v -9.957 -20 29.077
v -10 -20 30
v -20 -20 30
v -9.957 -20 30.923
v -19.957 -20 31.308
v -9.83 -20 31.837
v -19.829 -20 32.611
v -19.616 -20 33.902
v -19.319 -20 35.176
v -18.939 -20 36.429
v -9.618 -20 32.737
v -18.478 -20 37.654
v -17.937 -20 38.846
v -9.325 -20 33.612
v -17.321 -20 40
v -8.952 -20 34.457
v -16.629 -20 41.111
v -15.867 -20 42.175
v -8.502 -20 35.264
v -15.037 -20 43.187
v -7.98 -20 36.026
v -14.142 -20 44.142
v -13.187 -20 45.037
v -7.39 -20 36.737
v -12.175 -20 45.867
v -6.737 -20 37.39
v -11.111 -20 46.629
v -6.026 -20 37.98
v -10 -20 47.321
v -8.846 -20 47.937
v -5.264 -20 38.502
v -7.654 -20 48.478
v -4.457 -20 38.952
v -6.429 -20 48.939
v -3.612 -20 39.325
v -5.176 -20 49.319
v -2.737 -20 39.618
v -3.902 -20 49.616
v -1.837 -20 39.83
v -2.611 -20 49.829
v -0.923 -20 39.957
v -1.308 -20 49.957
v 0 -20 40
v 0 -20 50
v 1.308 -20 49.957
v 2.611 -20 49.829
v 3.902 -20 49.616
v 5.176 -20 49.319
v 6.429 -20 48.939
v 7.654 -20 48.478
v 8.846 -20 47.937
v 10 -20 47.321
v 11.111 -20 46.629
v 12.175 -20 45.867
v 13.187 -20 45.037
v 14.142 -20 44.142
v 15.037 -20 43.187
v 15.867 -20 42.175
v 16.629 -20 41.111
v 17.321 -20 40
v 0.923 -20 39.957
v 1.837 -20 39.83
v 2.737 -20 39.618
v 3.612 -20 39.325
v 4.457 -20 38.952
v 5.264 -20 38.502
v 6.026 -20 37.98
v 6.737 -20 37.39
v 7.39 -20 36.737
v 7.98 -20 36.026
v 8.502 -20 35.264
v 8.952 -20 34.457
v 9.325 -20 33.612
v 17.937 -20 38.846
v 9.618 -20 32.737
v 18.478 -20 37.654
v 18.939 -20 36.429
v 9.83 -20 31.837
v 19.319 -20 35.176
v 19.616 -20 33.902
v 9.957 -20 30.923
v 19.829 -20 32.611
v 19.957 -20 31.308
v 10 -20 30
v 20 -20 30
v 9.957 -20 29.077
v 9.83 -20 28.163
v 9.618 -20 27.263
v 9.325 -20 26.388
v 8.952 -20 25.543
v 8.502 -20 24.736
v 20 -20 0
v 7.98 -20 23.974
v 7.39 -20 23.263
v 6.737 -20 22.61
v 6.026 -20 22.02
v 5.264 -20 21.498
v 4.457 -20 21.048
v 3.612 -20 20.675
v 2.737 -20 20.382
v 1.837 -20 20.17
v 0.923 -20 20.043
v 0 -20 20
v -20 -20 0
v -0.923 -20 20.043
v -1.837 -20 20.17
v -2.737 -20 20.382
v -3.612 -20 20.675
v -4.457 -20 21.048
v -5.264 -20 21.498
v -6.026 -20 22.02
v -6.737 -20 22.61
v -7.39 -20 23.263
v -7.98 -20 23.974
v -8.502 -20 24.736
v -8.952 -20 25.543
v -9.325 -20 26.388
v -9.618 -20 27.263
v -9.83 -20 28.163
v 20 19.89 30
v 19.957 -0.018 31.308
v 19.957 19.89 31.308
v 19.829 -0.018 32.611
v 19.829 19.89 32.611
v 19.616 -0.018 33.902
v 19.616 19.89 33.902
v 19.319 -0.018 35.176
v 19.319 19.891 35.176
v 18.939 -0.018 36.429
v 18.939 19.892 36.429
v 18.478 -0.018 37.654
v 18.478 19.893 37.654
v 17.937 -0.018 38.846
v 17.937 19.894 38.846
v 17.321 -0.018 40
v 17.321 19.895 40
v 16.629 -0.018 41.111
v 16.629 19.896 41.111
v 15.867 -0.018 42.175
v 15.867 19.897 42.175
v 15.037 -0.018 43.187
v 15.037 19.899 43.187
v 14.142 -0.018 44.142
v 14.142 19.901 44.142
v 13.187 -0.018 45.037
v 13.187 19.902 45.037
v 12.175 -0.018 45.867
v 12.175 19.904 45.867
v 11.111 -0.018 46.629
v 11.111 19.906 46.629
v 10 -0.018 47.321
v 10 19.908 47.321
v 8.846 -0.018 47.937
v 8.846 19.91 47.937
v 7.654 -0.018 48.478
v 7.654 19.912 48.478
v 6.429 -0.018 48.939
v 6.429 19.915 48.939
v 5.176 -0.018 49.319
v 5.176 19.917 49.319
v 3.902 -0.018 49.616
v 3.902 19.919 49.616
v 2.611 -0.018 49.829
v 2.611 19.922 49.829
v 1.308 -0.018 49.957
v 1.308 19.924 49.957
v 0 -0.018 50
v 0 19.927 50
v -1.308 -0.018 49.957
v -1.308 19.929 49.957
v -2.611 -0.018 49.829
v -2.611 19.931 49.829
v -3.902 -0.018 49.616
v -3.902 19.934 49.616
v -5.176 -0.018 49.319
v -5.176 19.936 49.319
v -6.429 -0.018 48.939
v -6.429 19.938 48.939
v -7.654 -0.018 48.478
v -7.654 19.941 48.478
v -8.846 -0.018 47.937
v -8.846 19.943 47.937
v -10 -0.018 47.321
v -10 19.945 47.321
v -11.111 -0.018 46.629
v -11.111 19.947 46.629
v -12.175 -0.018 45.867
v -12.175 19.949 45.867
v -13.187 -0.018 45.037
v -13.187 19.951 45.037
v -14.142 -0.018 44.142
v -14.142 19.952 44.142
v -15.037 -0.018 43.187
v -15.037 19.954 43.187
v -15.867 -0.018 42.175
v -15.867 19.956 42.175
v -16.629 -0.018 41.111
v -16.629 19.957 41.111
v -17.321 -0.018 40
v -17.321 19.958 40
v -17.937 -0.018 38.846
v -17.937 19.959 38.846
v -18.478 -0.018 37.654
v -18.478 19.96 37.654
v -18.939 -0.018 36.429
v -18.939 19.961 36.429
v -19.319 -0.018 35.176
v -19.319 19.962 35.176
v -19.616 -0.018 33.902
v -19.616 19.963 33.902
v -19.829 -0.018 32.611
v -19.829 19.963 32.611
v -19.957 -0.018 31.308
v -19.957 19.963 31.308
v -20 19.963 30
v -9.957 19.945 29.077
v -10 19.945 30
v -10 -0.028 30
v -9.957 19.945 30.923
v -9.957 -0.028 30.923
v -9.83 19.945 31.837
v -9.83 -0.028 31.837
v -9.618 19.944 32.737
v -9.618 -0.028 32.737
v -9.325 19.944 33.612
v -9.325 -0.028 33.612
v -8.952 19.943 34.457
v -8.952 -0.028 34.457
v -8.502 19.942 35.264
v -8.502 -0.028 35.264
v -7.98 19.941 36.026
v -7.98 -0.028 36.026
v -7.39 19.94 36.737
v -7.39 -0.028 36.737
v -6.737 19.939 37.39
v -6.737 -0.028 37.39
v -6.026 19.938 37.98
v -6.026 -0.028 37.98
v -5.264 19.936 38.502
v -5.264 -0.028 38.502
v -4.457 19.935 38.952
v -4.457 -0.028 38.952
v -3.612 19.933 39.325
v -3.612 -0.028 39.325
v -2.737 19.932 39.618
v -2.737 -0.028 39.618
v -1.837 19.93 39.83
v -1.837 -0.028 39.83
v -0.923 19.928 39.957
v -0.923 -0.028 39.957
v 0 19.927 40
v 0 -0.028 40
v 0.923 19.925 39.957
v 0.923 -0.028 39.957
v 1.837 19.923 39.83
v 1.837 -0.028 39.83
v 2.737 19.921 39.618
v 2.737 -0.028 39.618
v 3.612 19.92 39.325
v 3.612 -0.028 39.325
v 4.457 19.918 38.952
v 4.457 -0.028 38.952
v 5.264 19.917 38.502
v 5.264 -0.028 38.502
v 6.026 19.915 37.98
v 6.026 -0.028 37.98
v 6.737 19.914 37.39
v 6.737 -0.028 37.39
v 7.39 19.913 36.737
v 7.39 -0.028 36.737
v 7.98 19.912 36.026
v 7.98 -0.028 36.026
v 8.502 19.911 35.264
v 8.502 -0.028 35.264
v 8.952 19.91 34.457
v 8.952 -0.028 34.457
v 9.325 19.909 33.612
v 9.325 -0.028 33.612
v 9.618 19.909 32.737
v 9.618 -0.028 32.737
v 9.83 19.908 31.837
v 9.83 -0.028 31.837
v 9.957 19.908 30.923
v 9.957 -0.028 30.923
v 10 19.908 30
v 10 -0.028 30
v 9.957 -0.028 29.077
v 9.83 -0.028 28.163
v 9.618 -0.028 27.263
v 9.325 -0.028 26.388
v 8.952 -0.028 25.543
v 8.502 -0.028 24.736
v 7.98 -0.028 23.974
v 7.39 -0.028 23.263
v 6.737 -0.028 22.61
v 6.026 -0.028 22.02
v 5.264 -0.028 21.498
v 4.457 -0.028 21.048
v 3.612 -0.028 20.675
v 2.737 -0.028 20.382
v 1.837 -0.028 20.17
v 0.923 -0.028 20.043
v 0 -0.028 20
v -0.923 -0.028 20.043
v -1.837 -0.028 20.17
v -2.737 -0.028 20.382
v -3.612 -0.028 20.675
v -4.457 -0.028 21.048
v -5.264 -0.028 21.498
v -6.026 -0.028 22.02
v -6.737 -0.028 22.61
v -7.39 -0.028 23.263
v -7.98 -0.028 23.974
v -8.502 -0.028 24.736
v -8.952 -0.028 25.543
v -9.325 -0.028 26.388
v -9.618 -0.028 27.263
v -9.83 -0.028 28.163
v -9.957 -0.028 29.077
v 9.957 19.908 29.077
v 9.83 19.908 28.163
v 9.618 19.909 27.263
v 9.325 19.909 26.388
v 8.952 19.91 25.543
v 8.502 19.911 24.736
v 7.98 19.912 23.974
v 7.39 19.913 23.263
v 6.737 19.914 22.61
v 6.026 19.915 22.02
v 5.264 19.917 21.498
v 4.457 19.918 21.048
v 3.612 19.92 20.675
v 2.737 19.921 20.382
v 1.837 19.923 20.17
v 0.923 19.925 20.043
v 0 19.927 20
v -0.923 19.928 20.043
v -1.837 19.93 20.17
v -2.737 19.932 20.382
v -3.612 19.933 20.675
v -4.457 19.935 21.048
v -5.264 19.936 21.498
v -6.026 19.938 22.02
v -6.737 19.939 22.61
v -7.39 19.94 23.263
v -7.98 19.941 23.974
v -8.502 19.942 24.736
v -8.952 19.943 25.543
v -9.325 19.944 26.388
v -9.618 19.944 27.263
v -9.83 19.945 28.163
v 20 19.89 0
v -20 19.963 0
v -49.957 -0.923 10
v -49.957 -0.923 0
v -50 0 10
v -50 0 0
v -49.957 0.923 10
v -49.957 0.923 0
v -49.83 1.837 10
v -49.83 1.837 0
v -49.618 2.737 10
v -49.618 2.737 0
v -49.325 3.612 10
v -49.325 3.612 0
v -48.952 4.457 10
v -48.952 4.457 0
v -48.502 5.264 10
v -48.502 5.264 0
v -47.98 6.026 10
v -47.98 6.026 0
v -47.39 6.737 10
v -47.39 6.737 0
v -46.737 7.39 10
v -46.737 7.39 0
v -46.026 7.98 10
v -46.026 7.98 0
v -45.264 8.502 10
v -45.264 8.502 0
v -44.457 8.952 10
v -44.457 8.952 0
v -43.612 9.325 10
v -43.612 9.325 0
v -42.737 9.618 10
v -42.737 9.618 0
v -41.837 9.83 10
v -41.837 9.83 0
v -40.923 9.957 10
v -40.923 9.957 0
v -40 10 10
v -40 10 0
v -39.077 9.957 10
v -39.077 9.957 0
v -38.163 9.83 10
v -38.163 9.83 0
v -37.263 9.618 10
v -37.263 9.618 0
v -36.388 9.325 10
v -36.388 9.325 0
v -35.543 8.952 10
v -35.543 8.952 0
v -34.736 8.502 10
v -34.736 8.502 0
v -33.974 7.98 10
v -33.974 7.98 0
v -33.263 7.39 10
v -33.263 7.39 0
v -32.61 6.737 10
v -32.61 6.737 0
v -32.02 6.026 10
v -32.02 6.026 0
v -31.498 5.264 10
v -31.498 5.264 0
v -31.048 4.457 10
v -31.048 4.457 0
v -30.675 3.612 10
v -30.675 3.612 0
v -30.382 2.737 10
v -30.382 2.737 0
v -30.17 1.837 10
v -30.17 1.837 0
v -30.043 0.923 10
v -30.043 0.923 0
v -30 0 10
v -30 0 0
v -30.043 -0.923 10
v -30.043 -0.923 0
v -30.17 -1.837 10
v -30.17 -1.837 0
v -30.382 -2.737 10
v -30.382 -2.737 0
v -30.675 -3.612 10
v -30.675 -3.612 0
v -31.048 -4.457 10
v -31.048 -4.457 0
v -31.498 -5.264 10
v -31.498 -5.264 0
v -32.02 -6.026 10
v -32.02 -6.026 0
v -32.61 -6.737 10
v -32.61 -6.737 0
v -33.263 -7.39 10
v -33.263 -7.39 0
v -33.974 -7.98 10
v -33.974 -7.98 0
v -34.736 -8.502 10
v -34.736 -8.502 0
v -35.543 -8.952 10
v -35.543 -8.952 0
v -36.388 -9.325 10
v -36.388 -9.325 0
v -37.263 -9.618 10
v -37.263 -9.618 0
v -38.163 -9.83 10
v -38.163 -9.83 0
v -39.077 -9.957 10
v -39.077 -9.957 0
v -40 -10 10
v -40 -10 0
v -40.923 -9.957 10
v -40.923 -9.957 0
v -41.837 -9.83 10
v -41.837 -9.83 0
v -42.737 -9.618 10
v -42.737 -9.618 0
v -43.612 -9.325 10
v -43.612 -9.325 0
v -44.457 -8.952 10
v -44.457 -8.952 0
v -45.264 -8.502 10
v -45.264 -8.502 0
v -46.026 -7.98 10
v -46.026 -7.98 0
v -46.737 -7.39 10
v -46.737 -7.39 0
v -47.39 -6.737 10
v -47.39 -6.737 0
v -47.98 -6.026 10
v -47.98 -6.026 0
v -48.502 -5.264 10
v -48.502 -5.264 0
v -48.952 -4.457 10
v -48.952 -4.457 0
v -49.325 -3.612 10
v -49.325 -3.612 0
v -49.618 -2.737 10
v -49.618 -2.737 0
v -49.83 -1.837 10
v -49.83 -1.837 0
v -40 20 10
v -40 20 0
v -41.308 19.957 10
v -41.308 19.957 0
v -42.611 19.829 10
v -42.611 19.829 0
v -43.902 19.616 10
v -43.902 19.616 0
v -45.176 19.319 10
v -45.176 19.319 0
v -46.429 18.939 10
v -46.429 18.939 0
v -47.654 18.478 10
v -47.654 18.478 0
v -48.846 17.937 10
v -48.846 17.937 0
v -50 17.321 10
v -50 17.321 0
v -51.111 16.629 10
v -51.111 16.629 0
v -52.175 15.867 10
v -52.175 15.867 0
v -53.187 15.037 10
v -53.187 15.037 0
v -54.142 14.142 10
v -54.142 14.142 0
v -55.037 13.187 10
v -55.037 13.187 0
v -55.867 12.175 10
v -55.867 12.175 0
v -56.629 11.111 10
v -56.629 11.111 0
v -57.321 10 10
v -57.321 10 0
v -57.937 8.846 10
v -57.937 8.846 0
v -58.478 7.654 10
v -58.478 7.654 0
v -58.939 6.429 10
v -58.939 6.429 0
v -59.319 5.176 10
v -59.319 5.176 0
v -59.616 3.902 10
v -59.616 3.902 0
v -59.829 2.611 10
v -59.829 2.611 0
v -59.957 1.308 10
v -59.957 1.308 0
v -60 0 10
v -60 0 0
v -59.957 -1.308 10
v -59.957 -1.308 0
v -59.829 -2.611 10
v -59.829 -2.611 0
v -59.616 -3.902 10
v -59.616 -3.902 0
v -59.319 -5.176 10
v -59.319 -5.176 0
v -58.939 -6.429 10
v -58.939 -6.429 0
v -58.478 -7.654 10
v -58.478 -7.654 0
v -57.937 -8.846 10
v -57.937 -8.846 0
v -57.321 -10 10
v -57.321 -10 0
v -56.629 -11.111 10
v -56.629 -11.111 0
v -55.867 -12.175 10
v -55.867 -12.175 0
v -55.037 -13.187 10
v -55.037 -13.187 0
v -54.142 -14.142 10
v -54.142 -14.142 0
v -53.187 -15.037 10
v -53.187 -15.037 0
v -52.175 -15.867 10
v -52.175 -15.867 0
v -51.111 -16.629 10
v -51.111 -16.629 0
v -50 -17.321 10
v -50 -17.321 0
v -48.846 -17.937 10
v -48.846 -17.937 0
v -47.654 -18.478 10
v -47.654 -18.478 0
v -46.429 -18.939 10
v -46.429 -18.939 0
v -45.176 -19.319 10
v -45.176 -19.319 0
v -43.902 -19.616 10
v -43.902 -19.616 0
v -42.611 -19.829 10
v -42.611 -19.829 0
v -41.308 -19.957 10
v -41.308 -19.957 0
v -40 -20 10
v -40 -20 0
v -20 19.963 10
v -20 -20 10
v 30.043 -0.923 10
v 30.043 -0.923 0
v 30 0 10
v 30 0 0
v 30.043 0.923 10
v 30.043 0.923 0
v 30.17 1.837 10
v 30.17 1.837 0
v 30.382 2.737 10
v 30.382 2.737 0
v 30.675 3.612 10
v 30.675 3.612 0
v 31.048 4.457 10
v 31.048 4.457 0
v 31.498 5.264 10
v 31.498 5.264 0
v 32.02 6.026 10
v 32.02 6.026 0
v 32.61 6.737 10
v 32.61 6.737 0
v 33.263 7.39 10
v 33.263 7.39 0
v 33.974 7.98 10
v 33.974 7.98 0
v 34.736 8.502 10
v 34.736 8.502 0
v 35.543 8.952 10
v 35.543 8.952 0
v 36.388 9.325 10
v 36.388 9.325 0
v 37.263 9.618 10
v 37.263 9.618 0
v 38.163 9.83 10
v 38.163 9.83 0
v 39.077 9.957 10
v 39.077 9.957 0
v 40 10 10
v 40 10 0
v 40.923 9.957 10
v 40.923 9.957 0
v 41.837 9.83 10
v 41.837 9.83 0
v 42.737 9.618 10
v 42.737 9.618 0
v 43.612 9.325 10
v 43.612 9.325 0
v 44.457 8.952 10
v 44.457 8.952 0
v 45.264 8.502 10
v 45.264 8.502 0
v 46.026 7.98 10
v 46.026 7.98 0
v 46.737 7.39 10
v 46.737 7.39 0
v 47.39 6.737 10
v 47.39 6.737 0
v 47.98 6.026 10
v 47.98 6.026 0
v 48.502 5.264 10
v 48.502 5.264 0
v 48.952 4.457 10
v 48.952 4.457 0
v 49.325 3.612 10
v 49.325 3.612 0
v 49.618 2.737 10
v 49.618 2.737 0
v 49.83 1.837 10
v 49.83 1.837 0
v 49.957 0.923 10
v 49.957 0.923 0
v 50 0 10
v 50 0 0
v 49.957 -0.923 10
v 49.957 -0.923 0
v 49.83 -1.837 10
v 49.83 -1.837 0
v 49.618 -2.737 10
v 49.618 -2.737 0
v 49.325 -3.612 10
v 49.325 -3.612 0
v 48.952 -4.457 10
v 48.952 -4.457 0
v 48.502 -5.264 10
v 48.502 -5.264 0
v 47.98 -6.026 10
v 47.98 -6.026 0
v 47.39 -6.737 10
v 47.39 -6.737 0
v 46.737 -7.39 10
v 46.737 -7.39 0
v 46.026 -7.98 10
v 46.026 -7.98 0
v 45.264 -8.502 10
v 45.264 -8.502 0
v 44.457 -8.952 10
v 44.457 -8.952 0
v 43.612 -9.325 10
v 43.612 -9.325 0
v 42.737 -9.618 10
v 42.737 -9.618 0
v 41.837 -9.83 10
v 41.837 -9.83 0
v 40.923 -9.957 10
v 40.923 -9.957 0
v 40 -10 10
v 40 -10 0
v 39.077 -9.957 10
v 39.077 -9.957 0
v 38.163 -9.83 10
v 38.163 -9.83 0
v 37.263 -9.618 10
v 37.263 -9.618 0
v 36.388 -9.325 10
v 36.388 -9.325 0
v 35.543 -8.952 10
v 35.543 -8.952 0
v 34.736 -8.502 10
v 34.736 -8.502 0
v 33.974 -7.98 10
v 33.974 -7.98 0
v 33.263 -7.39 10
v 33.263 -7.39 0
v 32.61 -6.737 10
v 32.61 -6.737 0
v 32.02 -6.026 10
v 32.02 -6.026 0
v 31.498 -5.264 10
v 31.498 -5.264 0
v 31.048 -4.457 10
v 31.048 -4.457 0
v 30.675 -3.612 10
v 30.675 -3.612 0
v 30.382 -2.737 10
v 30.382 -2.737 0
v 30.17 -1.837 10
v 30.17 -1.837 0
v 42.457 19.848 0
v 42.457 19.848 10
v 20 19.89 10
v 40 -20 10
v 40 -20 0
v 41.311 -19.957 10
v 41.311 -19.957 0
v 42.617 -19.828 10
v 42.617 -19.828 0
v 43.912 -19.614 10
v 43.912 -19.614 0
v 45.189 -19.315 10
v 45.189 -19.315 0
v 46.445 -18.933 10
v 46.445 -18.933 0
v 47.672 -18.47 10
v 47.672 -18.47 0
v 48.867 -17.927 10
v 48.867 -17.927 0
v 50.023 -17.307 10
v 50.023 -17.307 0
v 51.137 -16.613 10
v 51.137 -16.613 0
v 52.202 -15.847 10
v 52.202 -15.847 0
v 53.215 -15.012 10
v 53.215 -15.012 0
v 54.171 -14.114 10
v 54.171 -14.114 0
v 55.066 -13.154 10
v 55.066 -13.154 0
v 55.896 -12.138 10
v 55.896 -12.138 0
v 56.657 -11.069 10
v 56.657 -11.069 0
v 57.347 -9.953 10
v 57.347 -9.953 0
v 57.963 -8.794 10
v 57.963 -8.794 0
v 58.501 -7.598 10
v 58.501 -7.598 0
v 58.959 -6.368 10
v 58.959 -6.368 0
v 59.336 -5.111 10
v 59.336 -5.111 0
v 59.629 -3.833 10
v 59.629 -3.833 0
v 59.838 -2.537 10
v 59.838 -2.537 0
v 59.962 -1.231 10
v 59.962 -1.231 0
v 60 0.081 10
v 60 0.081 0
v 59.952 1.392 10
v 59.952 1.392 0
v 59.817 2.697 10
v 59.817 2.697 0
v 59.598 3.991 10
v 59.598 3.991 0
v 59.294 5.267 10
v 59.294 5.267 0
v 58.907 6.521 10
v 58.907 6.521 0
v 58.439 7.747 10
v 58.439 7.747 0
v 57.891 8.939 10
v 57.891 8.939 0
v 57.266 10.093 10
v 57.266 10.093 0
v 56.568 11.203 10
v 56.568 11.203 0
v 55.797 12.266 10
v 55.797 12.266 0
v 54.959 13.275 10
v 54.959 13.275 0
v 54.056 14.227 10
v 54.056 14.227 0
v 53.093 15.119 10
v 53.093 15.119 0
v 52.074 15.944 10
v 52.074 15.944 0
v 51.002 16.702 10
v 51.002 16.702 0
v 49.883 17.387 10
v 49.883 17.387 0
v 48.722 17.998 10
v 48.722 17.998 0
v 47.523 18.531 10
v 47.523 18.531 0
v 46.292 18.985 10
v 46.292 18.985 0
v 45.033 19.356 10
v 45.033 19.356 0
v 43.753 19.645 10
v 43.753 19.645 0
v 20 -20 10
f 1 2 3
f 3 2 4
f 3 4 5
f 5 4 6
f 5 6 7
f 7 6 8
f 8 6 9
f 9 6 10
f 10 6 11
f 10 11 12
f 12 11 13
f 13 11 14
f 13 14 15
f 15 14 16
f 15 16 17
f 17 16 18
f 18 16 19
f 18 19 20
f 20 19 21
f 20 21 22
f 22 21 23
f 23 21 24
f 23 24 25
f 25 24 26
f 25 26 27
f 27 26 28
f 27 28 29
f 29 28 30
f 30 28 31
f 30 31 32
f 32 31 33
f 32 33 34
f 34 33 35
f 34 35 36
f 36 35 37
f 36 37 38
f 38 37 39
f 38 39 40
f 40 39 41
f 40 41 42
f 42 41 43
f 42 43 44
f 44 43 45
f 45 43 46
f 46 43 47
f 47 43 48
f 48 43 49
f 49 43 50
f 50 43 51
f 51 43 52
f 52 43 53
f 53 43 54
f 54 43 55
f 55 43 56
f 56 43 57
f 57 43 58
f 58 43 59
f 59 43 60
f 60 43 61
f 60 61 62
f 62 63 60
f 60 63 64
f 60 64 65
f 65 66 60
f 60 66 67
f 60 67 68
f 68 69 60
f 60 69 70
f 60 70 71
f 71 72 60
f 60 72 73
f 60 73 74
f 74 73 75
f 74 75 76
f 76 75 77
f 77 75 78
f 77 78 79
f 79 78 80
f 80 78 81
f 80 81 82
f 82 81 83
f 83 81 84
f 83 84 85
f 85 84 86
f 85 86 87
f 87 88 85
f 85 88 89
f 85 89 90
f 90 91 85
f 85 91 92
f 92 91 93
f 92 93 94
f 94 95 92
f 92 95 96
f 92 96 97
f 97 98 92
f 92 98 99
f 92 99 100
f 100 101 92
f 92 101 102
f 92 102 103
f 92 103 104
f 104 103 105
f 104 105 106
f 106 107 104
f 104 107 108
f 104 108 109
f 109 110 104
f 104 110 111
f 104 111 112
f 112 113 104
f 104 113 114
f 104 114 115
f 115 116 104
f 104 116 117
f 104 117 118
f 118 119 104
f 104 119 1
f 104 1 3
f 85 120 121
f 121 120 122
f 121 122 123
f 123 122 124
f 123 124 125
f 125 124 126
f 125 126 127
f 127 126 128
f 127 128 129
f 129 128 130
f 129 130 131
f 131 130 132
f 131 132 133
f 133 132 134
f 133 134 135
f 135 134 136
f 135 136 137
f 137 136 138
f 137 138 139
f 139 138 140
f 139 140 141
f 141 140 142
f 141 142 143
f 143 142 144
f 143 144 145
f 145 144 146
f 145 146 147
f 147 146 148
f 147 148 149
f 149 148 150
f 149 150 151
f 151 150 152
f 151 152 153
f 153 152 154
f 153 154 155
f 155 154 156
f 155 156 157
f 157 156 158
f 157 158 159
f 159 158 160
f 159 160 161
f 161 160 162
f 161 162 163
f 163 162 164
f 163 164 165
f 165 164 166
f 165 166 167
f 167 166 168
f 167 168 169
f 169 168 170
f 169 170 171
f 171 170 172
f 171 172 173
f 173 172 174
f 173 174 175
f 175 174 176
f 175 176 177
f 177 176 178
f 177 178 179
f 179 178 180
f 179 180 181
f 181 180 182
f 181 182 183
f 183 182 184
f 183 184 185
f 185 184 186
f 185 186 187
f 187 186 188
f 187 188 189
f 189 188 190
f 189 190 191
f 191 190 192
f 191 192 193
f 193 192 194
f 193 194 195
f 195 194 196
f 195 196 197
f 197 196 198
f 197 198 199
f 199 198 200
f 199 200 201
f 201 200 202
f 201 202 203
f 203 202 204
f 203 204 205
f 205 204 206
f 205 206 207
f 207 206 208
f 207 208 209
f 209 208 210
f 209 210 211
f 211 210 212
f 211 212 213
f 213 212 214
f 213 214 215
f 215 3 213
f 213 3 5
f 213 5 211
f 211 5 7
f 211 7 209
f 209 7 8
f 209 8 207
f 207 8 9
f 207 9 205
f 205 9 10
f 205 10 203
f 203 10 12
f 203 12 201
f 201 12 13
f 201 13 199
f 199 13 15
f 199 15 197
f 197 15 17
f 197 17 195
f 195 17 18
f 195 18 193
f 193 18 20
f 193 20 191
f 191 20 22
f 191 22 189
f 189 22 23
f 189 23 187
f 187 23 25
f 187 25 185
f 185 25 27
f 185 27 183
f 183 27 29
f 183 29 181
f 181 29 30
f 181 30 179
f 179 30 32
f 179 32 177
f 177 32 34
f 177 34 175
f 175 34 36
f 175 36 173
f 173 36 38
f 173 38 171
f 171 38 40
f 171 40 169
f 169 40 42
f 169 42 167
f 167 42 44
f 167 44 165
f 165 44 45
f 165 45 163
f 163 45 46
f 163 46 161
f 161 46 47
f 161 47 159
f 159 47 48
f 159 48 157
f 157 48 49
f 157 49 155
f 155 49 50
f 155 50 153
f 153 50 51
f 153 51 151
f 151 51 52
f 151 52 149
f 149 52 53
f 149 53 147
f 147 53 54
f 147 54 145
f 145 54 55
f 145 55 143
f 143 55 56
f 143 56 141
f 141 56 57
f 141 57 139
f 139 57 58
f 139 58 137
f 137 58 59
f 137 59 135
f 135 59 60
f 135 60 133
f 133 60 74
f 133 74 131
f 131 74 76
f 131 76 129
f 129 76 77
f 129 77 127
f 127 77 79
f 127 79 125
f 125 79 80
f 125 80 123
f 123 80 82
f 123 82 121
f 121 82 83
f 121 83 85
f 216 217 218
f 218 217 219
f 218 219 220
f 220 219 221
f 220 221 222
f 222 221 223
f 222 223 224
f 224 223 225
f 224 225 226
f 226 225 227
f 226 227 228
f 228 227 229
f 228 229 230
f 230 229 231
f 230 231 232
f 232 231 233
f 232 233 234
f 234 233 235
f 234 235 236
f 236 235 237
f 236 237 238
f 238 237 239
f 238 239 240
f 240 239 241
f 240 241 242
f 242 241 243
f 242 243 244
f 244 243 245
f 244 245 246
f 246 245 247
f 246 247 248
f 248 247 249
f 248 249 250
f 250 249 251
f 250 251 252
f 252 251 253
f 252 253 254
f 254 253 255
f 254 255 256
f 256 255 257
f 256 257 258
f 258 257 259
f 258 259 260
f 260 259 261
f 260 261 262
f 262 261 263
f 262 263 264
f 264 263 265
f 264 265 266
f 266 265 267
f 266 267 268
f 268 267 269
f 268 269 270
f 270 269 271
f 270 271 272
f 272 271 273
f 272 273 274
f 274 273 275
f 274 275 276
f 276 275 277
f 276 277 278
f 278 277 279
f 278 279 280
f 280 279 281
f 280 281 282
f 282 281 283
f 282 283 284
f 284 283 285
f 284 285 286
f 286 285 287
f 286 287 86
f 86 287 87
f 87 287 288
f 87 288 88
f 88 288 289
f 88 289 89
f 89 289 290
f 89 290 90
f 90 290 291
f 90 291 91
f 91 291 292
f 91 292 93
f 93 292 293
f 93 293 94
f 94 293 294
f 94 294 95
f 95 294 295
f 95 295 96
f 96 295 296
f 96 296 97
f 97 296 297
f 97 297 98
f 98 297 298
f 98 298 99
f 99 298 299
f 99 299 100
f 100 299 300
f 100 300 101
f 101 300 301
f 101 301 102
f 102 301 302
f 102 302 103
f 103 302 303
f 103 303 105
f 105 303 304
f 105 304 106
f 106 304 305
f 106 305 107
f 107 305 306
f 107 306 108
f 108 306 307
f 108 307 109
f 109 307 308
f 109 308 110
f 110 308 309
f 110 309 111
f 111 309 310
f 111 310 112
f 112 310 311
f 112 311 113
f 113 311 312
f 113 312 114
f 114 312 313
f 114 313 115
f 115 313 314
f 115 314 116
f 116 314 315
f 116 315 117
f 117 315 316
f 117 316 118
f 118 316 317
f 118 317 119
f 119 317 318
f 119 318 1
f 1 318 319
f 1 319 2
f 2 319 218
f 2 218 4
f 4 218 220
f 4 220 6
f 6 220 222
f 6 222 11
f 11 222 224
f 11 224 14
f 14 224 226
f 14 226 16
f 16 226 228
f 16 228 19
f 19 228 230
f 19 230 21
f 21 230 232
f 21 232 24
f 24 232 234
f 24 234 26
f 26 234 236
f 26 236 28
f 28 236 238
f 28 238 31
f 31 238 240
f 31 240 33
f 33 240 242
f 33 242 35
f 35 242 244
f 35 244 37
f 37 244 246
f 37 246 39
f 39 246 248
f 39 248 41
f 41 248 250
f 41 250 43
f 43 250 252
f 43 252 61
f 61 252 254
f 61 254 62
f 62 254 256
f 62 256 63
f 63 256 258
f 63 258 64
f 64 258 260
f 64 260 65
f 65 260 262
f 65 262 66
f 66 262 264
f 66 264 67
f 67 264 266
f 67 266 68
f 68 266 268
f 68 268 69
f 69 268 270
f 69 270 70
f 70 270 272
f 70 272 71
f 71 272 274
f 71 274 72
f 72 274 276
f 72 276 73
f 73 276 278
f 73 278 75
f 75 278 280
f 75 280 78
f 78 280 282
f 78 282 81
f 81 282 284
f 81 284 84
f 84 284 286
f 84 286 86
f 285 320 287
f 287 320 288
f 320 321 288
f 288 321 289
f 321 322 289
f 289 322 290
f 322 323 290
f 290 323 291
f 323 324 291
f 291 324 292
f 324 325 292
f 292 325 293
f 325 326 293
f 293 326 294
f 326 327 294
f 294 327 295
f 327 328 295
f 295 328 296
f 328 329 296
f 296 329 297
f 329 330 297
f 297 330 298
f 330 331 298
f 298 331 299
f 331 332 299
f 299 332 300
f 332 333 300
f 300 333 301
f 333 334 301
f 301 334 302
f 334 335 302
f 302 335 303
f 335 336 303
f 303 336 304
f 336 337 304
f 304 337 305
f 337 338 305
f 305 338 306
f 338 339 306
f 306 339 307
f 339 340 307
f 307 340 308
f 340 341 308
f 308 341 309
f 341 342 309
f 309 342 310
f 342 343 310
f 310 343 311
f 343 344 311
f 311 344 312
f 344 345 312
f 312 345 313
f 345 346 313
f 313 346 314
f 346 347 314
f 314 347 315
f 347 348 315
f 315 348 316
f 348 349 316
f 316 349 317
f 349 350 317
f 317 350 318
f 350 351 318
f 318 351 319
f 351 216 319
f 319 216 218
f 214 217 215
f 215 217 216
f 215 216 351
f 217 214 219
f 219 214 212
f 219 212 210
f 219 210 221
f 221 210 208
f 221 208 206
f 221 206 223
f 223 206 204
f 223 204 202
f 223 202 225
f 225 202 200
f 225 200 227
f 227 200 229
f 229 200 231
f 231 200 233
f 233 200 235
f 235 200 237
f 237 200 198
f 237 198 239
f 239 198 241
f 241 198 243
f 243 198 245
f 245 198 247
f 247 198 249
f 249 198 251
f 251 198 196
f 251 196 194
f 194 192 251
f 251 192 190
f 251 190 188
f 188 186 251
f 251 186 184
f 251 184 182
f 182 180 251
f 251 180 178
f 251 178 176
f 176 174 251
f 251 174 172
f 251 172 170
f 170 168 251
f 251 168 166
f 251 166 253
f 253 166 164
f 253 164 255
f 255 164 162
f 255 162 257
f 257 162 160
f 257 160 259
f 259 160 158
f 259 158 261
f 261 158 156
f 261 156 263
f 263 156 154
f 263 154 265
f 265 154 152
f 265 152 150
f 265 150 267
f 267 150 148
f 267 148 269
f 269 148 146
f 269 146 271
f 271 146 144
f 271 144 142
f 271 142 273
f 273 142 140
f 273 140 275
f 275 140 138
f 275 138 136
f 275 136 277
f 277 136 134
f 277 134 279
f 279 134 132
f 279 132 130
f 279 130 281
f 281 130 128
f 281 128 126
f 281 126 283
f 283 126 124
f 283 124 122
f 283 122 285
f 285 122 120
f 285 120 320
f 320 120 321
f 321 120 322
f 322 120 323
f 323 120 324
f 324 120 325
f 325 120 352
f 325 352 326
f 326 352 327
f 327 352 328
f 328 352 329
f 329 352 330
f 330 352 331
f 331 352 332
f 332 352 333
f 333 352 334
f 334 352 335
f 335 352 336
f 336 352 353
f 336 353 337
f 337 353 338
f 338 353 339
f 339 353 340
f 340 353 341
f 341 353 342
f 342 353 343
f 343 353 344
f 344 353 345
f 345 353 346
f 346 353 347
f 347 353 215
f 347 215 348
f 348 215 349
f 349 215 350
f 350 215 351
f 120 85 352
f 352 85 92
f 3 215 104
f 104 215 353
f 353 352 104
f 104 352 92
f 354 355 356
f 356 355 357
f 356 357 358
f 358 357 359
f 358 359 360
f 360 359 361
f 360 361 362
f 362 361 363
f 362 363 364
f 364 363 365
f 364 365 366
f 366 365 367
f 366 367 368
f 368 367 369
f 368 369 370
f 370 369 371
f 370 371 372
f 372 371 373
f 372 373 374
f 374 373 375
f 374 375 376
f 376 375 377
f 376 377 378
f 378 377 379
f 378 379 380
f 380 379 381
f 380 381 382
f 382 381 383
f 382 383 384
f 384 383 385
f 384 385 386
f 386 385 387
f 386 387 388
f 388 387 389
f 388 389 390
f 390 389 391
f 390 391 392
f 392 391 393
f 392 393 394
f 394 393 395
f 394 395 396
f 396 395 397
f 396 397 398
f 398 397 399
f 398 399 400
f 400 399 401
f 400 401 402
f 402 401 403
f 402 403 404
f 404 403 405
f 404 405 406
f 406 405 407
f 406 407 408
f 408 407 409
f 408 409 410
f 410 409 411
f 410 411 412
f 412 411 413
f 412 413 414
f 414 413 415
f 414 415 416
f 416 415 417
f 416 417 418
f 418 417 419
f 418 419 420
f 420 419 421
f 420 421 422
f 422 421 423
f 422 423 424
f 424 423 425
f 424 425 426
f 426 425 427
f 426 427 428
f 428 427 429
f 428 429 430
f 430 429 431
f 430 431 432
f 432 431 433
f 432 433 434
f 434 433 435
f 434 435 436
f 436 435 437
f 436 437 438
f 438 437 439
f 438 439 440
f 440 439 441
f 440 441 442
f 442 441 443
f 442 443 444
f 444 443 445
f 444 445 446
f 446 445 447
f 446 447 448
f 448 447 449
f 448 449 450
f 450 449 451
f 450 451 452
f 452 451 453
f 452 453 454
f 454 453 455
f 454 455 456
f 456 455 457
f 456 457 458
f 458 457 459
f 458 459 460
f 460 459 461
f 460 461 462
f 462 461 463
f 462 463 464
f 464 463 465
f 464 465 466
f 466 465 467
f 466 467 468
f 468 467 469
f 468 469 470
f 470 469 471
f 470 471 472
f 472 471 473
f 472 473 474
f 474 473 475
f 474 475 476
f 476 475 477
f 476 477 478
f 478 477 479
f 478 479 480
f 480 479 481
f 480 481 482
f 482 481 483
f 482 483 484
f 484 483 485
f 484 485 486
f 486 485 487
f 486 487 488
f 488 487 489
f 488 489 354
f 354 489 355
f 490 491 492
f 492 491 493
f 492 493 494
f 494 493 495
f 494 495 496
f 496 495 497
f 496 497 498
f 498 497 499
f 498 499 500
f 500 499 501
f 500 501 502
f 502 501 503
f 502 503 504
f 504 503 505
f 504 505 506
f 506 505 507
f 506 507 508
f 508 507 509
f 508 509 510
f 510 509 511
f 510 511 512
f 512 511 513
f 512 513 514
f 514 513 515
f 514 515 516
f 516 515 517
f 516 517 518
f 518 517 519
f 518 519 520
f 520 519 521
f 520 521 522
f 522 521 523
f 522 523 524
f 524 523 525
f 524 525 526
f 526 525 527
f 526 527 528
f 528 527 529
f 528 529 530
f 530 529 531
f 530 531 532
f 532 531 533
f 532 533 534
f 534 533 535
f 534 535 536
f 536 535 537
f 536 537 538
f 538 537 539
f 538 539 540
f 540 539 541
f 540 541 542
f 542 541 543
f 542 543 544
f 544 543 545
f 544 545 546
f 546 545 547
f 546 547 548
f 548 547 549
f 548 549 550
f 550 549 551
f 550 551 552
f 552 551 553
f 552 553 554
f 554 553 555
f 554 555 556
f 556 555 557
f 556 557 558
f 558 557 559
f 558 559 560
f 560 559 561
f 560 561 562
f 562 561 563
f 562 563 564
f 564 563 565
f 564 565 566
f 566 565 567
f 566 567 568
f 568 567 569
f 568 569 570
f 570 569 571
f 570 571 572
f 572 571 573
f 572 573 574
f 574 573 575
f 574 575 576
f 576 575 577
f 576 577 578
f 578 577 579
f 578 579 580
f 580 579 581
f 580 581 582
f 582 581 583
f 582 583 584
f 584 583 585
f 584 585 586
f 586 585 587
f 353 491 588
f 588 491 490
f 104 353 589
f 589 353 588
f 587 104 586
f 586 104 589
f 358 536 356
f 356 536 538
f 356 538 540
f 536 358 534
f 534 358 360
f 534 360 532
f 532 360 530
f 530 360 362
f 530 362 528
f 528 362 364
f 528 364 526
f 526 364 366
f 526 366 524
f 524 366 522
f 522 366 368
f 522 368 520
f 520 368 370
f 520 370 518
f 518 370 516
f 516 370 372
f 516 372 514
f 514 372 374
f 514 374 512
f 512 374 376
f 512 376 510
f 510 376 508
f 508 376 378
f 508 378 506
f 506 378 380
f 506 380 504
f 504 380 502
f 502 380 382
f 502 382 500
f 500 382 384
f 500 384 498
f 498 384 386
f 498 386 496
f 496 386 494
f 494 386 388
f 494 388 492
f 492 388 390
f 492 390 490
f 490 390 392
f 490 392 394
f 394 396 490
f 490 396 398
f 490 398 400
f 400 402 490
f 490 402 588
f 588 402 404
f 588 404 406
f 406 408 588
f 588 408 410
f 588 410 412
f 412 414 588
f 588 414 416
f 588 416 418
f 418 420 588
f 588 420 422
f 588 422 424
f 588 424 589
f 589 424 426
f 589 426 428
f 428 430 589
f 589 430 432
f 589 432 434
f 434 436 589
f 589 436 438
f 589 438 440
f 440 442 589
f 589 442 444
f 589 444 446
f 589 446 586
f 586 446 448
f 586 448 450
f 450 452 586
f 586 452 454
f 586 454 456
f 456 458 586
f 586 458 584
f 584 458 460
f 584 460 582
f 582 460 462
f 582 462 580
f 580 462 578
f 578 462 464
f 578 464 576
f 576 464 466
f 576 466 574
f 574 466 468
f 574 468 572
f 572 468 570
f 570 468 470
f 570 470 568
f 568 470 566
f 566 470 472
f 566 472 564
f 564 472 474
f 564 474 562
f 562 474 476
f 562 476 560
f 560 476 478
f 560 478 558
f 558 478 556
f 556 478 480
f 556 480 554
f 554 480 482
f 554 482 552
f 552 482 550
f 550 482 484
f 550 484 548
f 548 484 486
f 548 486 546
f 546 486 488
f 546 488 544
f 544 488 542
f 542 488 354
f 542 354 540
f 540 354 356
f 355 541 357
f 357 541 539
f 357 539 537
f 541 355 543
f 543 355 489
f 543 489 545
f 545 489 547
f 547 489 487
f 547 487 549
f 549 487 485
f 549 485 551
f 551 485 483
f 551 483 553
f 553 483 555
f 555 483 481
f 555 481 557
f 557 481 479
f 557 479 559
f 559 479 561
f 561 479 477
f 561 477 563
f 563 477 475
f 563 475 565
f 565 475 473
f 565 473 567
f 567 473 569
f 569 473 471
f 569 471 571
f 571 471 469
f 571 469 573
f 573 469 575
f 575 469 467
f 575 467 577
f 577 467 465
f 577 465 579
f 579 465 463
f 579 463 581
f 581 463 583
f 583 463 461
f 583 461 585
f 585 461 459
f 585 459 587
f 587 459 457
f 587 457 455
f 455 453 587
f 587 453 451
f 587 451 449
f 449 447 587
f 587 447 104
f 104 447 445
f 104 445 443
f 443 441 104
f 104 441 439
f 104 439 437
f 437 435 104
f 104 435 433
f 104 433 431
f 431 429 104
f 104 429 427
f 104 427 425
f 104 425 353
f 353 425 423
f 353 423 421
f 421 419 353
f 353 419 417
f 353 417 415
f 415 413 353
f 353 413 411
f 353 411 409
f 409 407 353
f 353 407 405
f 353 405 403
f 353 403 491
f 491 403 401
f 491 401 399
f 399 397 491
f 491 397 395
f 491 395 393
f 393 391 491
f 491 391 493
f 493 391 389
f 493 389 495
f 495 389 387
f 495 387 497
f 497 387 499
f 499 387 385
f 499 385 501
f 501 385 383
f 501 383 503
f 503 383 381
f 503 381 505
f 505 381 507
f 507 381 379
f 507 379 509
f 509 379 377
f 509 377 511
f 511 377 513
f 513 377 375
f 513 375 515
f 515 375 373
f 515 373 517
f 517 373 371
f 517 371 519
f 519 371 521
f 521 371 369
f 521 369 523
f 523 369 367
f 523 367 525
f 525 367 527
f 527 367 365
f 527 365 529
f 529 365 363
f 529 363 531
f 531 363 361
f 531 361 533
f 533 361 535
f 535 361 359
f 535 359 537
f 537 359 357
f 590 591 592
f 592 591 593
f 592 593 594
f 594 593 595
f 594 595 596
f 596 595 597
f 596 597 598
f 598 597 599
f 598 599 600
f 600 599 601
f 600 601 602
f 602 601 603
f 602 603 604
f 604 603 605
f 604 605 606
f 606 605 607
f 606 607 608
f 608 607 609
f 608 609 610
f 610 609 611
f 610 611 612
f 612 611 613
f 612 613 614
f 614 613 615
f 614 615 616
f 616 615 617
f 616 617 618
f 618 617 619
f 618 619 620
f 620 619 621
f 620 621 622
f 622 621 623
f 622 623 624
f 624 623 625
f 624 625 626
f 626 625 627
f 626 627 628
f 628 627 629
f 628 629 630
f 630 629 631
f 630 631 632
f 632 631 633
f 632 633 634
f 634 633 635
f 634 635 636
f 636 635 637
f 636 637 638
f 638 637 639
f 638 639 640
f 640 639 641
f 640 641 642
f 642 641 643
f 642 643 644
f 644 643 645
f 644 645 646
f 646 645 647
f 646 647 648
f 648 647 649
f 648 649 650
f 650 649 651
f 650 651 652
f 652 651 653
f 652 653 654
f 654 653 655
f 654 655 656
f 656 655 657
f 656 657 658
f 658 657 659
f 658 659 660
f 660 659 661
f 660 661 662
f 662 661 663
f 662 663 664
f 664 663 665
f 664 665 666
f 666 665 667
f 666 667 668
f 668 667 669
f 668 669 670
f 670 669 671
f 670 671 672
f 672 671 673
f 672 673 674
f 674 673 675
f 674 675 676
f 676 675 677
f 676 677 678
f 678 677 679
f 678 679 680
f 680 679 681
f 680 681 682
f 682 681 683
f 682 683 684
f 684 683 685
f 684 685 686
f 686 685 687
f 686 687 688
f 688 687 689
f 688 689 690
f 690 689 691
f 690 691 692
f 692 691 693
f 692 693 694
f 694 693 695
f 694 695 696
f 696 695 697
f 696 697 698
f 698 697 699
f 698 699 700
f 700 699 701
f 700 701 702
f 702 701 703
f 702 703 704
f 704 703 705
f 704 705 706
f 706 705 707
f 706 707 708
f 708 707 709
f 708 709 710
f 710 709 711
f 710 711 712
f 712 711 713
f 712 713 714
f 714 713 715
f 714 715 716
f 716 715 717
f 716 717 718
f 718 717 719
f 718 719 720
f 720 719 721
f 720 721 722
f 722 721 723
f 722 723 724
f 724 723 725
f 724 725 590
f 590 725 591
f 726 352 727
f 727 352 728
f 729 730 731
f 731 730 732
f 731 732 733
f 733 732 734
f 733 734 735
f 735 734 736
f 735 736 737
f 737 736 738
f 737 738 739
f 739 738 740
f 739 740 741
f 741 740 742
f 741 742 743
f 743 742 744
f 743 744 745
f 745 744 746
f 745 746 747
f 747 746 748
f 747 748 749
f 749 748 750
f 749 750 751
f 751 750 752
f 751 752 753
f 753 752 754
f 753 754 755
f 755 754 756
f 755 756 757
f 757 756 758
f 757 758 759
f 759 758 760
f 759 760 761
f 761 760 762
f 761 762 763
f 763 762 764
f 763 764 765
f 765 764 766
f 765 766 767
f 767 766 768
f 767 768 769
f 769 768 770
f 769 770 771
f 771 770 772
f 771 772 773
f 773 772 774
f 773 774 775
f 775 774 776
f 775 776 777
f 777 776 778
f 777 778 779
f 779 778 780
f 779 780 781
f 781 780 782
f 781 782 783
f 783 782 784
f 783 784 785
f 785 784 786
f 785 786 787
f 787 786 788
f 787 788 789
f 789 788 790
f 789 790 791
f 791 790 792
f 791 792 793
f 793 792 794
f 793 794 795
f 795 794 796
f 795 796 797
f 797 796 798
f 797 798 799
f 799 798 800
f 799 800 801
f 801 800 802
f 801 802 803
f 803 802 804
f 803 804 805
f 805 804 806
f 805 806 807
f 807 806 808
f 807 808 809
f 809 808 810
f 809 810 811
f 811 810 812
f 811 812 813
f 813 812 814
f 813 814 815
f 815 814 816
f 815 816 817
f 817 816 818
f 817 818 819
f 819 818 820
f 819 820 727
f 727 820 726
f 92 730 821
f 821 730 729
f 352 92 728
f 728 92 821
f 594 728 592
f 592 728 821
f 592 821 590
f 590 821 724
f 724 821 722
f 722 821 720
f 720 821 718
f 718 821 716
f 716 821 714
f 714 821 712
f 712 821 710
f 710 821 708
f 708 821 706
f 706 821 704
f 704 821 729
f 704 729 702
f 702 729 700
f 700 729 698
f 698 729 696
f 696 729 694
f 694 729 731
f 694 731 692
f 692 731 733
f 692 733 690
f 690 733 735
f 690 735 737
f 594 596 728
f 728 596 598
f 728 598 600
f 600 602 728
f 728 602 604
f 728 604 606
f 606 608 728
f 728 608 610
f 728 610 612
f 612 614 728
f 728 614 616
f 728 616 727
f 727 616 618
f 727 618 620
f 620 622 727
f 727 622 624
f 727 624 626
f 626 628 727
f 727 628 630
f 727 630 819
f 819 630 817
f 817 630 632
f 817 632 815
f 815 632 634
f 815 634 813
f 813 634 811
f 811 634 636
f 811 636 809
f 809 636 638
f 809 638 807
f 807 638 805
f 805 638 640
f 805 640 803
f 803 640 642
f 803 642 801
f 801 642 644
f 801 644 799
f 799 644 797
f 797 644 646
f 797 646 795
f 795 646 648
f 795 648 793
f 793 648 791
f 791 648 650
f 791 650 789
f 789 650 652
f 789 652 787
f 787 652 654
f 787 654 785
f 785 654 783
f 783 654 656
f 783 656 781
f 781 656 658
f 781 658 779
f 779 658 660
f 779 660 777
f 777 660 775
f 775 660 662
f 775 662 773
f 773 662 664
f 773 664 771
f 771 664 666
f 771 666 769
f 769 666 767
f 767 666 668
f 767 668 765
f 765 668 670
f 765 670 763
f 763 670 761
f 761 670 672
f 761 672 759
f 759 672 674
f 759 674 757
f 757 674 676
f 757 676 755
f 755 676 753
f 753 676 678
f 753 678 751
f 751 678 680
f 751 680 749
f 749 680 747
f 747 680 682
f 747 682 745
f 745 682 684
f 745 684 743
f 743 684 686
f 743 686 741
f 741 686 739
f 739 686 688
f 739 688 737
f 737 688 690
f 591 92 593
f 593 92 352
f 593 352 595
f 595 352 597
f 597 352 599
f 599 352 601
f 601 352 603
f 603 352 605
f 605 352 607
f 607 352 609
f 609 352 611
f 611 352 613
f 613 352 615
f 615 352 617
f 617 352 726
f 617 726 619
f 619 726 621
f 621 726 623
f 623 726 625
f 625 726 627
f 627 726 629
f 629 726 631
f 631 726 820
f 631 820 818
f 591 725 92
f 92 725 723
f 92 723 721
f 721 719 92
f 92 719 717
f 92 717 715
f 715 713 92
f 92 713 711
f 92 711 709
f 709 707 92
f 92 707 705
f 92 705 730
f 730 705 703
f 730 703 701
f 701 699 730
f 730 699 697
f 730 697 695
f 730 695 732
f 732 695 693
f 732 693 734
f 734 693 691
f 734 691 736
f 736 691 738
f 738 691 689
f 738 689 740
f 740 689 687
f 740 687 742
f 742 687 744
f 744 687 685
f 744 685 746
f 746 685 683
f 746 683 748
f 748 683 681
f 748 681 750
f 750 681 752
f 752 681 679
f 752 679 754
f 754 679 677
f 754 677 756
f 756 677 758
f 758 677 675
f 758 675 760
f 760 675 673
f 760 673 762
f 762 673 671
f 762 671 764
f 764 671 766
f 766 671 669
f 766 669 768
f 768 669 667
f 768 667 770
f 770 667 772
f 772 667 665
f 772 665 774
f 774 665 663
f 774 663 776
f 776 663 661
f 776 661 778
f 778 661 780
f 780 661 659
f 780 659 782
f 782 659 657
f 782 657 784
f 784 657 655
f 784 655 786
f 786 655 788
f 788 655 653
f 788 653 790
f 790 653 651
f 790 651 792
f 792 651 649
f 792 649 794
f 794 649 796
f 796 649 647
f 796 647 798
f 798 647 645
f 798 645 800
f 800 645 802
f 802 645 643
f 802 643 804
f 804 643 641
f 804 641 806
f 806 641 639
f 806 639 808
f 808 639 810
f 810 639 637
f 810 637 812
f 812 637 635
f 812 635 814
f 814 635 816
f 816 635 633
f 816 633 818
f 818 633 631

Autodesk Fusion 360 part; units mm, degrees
sketch "Sketch2" plane through (0, 0, 0) normal (0, 0, 1) x (1, 0, 0)
  circle A0 centre (-40, 0) radius 10
  circle A1 centre (40, 0) radius 10
  line L0 (-40, 20) -> (42.4572, 19.8485)
  line L1 (-40, -20) -> (40, -20)
  line L2 (20, -20) -> (-20, -20)
  line L3 (-20, -20) -> (-20, 20)
  line L4 (-20, 20) -> (20, 20)
  line L5 (20, 20) -> (20, -20)
  line L6 (20, -20) -> (-20, 20) construction
  line L7 (-20, -20) -> (20, 20) construction
  arc A2 (-39.9265, 19.9999) -> (-40, -20) centre (-40, 0) ccw
  arc A3 (40, -20) -> (37.6158, 19.8574) centre (40, 0) ccw
  dimension "d3" = 20
  dimension "d4" = 20
  dimension "d7" = 40
  dimension "d8" = 40
extrude "Extrude2" add sketch "Sketch2" along normal blind 50 contours L0 L1 L2 L3 L5 makes body 1
extrude "Extrude1" add sketch "Sketch2" along normal blind 10 separate body contours L0 L1 L3 A2 | L0 L1 L5 A3 makes body 2 at (-23.3333, -0.0122, 0) makes body 3 at (23.3333, -0.0367, 0)
sketch "Sketch3" plane through (0, -20, 0) normal (0, -1, 0) x (1, 0, 0)
  line L0 (-20, 0) -> (20, 0)
  line L1 (20, 0) -> (20, 50)
  line L2 (20, 50) -> (-20, 50)
  line L3 (-20, 50) -> (-20, 0)
  circle A0 centre (0, 30) radius 10
  arc A1 (20, 30) -> (-20, 30) centre (0, 30) ccw
  dimension "d13" = 20
extrude "Extrude5" cut sketch "Sketch3" against normal blind 40 contours A0 bodies 1
extrude "Extrude4" cut sketch "Sketch3" against normal blind 40 contours L1 L2 A1 bodies 1
extrude "Extrude3" cut sketch "Sketch3" against normal blind 40 contours L2 L3 A1 bodies 1
